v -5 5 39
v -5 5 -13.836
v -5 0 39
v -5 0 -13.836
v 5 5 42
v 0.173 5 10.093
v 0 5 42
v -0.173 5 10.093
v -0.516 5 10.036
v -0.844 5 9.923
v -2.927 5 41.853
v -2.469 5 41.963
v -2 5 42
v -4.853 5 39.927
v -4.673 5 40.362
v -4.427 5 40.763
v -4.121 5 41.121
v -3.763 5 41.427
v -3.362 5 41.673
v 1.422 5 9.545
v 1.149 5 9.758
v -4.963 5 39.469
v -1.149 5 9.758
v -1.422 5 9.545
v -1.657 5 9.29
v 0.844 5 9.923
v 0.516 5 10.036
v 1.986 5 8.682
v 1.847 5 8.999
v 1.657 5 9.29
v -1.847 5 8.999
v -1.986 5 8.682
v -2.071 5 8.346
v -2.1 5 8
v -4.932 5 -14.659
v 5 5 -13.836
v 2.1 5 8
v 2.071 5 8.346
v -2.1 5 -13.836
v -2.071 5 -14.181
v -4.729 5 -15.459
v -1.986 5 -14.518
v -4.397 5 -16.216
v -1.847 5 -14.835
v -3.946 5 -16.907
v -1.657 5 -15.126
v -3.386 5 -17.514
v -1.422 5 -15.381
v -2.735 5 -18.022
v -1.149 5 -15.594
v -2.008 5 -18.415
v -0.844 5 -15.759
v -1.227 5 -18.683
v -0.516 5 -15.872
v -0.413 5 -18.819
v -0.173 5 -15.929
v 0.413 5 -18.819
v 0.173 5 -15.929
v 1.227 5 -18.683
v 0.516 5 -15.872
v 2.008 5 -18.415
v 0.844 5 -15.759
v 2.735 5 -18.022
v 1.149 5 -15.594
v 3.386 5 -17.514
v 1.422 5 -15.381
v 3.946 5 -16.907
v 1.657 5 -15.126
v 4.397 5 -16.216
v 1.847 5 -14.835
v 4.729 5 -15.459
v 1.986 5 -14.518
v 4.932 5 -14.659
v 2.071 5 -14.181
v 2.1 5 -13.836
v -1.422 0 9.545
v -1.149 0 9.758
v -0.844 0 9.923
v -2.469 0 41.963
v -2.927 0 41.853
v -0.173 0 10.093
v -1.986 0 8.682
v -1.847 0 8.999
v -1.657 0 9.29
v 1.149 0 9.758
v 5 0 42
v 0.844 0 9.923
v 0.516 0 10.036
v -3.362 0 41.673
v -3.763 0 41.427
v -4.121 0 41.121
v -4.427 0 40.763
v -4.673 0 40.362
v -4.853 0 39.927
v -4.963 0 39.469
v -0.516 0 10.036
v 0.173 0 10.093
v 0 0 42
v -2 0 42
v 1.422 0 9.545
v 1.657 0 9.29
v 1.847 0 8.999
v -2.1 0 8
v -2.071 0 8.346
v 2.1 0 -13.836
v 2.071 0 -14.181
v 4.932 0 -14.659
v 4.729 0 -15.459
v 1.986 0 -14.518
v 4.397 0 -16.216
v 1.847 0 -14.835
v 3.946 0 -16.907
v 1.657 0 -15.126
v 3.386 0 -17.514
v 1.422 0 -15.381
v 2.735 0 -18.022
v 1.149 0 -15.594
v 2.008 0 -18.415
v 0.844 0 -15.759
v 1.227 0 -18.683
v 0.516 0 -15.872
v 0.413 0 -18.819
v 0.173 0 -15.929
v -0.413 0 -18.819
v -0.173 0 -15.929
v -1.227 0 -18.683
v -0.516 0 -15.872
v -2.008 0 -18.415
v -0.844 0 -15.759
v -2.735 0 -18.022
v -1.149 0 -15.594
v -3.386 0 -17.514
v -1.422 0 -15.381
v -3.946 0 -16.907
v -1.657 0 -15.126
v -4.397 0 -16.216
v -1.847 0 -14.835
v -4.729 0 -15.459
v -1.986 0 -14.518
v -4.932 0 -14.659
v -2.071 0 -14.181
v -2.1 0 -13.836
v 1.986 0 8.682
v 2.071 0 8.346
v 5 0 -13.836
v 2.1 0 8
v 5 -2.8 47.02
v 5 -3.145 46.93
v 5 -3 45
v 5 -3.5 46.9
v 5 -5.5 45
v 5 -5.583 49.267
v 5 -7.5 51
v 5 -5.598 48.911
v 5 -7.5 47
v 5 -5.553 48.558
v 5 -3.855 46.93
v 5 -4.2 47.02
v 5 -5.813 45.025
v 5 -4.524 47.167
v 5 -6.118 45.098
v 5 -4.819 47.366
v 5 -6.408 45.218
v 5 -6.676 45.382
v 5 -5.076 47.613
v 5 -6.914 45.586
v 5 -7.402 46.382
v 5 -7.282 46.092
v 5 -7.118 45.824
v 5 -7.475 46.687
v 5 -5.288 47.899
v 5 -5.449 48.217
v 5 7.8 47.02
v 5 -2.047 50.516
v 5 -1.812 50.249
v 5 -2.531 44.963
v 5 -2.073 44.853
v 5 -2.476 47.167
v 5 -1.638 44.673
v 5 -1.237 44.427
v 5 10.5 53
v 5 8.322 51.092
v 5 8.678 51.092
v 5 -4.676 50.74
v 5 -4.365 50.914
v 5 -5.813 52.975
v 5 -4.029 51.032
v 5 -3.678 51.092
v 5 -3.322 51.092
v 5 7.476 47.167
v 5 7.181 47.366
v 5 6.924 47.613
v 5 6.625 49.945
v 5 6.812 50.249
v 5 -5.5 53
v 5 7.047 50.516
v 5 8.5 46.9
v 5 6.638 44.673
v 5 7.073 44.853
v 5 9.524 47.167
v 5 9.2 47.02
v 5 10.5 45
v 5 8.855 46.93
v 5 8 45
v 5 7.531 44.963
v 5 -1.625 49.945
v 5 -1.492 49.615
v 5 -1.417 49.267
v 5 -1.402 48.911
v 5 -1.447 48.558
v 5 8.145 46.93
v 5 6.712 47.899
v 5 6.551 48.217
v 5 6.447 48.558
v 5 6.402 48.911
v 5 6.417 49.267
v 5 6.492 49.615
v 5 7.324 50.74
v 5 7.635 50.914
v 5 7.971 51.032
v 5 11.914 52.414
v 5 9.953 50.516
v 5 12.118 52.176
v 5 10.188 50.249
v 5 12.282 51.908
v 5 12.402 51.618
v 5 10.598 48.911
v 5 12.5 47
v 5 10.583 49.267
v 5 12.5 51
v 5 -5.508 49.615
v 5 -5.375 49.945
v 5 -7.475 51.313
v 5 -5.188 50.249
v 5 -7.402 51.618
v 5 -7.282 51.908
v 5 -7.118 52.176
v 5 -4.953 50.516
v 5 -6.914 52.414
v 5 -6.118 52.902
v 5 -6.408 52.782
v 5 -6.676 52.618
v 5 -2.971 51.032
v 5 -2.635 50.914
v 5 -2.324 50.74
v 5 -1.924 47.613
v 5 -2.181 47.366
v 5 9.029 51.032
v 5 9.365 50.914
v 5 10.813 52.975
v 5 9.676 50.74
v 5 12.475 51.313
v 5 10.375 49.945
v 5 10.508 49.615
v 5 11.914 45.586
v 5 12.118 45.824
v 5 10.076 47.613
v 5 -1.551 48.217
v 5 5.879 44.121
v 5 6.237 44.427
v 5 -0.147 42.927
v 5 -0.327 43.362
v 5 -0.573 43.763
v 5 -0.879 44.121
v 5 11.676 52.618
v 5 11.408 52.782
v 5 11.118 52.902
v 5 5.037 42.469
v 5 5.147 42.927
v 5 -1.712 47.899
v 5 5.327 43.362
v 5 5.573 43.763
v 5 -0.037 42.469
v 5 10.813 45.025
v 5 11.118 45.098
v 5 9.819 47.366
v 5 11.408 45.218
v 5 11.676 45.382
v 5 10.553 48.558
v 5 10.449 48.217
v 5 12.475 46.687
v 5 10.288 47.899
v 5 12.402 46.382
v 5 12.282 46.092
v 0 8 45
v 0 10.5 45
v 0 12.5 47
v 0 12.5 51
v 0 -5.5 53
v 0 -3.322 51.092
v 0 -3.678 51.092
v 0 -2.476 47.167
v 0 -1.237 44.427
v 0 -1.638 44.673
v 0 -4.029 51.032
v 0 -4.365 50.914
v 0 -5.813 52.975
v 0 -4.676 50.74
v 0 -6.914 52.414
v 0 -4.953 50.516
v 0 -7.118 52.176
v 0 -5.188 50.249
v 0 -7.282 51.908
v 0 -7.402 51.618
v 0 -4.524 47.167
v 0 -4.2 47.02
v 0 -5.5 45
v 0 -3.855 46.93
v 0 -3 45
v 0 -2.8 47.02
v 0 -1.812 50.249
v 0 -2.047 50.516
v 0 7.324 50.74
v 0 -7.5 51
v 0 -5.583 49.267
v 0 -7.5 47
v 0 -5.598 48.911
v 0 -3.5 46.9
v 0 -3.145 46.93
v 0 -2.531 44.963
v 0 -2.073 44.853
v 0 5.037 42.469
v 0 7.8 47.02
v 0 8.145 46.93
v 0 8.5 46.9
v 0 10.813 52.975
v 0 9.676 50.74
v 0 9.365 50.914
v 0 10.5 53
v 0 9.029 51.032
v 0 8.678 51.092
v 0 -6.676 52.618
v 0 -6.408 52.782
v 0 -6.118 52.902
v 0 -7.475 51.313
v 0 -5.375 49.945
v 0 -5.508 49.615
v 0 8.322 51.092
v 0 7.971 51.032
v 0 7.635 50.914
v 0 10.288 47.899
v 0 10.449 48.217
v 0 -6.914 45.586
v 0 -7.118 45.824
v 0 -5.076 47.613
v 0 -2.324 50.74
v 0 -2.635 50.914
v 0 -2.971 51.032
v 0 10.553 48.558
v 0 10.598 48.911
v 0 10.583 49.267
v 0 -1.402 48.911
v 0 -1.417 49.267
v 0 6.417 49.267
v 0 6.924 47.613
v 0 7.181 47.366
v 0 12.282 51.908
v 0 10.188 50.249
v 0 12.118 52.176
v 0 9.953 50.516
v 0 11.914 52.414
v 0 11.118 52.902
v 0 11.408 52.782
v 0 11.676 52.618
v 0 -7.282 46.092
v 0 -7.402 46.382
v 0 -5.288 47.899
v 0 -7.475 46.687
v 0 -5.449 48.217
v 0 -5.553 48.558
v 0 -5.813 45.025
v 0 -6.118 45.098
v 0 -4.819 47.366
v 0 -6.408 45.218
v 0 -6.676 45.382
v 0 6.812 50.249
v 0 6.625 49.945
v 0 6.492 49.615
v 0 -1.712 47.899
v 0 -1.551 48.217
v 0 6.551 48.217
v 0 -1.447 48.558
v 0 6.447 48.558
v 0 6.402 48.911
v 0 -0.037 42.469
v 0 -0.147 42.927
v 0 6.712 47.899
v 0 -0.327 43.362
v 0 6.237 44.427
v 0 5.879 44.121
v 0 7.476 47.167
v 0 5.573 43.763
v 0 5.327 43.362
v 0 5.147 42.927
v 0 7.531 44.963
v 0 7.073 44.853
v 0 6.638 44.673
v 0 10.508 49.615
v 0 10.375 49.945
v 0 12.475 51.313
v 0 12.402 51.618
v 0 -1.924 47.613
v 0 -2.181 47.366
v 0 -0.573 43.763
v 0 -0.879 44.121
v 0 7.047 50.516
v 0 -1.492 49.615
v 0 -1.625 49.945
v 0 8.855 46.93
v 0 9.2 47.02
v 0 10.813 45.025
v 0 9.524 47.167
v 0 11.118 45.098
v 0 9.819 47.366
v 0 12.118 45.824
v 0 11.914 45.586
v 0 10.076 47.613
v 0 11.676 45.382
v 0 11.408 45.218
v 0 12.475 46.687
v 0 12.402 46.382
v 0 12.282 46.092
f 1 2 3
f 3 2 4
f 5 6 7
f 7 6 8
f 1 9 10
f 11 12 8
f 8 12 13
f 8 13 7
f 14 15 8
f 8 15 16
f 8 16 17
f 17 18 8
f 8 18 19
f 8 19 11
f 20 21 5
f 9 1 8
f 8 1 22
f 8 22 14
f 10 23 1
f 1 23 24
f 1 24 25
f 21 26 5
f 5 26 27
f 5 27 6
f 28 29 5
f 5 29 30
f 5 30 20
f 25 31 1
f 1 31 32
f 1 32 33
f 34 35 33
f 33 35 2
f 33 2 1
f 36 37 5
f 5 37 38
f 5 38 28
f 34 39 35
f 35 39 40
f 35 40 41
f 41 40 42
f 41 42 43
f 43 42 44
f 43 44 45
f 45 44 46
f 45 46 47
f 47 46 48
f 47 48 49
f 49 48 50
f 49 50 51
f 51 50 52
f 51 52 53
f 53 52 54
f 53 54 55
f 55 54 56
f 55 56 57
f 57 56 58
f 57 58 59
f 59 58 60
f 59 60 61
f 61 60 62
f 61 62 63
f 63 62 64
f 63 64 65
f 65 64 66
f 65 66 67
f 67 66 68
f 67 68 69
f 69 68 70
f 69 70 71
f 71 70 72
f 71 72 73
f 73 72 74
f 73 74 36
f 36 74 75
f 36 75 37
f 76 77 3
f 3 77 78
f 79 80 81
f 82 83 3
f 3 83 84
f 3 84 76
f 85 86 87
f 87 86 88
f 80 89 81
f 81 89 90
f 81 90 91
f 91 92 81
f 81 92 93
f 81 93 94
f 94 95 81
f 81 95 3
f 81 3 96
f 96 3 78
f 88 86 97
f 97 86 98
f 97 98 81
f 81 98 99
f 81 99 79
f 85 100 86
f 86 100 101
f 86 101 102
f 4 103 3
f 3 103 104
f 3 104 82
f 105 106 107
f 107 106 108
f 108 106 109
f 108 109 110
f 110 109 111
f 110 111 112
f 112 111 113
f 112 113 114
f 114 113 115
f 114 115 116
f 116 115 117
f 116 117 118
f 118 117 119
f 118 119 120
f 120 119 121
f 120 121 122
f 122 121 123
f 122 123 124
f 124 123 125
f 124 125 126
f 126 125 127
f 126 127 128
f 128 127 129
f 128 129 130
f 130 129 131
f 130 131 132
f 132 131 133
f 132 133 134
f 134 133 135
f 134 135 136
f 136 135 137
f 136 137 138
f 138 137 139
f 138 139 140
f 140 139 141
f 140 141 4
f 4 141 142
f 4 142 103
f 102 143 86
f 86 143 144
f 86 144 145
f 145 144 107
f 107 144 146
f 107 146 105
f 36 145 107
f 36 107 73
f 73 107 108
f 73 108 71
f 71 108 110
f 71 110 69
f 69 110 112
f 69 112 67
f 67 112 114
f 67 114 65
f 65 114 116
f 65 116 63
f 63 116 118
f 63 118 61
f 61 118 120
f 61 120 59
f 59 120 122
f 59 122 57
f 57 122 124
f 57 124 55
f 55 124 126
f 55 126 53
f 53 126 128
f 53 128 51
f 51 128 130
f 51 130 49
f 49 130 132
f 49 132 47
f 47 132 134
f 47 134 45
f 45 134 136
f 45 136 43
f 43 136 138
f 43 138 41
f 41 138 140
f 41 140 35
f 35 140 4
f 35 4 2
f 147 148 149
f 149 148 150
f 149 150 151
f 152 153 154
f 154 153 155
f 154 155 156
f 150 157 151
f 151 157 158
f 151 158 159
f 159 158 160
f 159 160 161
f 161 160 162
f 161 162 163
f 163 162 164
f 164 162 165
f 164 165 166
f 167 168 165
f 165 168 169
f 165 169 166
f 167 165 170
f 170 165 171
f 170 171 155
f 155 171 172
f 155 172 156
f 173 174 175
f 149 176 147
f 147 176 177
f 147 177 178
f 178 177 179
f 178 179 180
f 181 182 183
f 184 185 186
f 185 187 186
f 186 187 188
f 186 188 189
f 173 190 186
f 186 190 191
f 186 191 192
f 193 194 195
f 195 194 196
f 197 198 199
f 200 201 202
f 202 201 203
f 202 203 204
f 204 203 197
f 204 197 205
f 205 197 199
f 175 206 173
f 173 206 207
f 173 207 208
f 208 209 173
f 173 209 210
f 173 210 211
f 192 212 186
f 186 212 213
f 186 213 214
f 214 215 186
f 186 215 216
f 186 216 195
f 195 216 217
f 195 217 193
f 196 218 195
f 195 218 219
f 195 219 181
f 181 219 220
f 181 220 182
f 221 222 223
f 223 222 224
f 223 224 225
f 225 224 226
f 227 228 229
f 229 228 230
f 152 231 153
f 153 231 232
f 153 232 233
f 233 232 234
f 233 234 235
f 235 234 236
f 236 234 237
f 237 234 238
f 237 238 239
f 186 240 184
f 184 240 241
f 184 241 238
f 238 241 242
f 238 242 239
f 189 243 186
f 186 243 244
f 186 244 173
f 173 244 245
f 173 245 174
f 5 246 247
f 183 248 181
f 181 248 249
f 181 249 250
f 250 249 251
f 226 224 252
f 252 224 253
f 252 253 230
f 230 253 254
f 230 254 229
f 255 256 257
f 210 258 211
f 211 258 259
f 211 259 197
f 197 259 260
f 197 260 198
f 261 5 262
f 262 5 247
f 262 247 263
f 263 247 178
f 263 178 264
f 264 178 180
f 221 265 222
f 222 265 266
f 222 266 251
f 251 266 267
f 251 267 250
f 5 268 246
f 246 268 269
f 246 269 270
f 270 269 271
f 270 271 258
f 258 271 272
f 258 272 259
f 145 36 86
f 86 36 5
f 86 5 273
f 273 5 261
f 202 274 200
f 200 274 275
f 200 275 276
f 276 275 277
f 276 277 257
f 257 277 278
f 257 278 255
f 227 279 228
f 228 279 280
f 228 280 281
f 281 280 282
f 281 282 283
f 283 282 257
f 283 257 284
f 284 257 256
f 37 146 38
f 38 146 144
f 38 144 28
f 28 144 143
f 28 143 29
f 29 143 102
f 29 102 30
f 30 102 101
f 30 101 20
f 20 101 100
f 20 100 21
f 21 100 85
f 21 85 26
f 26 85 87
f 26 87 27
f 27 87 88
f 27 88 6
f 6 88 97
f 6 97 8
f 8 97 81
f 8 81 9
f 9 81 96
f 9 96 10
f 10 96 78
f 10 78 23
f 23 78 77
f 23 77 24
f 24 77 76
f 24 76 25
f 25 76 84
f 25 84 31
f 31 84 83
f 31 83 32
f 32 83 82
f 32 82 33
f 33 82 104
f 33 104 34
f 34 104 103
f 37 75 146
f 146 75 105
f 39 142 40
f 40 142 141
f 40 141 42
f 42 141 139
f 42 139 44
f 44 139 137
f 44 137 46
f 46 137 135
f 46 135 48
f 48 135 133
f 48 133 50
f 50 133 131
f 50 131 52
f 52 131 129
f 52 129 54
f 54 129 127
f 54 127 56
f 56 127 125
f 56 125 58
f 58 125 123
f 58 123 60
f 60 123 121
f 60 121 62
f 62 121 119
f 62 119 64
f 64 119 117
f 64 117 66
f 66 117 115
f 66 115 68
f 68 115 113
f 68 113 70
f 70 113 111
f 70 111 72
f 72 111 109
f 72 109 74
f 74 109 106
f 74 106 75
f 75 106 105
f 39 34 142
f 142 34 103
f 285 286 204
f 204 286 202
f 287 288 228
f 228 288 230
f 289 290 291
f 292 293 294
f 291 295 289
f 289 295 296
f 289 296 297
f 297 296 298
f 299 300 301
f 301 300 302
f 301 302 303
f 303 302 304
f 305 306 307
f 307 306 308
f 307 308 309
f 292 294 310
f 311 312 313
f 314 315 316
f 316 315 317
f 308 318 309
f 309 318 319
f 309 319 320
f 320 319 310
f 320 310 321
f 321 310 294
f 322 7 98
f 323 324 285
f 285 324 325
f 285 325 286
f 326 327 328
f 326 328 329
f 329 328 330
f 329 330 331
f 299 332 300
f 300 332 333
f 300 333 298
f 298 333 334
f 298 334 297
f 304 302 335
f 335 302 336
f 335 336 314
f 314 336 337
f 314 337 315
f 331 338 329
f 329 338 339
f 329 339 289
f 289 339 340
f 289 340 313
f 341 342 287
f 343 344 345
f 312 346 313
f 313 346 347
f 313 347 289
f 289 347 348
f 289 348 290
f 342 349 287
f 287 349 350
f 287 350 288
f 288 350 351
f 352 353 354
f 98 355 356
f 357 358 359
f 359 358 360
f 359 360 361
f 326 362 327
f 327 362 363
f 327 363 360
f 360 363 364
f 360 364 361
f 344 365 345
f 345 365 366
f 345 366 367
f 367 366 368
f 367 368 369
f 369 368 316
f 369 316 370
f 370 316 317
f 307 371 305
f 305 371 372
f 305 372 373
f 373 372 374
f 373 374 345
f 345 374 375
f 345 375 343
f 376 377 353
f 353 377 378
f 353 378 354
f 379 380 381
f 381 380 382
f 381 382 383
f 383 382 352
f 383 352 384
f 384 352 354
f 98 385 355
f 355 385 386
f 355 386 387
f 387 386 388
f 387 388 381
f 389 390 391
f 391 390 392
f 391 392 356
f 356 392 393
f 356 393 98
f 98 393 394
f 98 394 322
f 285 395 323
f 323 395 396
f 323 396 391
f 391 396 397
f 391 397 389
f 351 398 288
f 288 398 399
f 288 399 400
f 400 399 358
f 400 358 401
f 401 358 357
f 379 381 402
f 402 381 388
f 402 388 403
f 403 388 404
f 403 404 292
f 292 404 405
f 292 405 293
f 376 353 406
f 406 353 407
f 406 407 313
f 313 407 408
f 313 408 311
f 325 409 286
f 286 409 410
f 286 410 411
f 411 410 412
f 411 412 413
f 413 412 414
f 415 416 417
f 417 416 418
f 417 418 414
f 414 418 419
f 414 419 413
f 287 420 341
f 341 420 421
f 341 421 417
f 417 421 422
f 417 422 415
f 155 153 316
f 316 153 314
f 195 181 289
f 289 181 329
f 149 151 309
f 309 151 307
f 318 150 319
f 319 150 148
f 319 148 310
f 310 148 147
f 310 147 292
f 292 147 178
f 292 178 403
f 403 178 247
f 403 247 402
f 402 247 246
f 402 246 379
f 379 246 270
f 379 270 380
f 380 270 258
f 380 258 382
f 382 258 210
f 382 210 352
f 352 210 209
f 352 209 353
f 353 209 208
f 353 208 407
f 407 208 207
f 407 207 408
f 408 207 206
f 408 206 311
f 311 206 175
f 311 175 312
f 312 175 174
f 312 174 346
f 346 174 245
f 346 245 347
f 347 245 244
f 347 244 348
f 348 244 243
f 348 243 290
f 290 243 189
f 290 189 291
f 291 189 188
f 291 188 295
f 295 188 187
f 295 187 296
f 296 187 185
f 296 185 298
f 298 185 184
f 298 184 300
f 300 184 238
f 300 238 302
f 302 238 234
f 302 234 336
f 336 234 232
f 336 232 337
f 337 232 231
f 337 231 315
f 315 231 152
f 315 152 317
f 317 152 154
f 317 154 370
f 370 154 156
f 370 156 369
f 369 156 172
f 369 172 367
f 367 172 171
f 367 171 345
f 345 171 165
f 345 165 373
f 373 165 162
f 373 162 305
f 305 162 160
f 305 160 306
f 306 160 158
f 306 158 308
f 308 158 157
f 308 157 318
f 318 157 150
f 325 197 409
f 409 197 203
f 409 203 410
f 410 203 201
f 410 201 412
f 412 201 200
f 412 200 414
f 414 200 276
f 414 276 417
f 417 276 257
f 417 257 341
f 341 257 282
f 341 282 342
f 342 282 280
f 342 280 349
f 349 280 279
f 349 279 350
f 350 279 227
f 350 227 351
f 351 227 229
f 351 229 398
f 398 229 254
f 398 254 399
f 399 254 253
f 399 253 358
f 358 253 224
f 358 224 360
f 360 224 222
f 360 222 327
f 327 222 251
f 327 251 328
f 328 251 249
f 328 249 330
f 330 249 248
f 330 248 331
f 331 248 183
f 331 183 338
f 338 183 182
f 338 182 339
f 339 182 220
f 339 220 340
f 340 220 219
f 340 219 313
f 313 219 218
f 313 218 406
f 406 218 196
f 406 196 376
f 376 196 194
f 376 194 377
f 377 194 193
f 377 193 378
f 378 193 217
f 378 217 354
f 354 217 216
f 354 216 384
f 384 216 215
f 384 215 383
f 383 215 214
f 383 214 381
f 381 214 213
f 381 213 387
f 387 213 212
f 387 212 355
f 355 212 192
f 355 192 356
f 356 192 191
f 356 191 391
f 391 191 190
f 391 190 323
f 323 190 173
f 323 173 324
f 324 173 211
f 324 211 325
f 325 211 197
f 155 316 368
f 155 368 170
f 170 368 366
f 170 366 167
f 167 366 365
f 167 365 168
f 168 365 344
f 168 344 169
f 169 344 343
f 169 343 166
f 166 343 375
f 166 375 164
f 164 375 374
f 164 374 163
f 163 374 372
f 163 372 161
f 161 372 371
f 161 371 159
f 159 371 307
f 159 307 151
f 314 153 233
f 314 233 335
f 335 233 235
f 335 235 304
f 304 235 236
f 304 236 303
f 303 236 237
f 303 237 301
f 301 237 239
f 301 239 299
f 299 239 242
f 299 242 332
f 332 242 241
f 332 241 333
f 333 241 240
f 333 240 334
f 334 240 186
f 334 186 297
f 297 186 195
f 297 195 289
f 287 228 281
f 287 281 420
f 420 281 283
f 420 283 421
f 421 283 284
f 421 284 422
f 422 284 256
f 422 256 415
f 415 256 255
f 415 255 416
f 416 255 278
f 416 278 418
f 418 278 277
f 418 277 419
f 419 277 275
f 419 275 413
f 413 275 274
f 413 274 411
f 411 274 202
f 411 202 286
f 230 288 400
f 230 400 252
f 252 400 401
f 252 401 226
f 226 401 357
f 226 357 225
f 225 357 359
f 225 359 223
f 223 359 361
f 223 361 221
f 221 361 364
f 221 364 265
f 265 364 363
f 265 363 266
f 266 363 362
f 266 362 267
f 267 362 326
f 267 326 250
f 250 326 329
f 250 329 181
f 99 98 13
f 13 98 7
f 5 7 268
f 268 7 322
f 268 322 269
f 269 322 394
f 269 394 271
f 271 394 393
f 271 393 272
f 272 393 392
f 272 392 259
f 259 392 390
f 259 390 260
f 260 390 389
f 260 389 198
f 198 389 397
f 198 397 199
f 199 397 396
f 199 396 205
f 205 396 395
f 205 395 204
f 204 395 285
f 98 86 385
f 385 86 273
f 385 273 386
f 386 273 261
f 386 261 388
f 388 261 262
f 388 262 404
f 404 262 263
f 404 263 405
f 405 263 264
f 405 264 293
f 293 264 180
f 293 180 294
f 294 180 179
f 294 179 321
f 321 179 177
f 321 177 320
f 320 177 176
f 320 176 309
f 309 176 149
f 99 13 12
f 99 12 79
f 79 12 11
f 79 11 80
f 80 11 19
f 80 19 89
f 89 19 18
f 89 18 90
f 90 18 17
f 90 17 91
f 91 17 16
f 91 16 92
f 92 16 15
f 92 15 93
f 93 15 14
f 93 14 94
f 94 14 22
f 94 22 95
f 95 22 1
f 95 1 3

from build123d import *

# Parameters (mm, degrees)
BOSS_EXTRUDE1_DEPTH = 5
SKETCH2_W           = 5
SKETCH2_H           = 20
BOSS_EXTRUDE2_DEPTH = 8
SKETCH3_R           = 2.1
CUT_EXTRUDE1_DEPTH  = 8
FILLET2_R           = 2
SKETCH4_W           = 5
SKETCH4_H           = 5
CUT_EXTRUDE2_DEPTH  = 3
FILLET3_R           = 3


with BuildPart() as part:
    # Sketch1 → Boss-Extrude1 (new body)
    with BuildSketch(Plane(origin=(0, 0, 0), x_dir=(1, 0, 0), z_dir=(0, 1, 0))):
        with BuildLine():
            Line((-5, 0), (-5, 13.835803565))
            ThreePointArc((-5, 13.835803565), (0, 18.835803565), (5, 13.835803565))
            Line((5, 13.835803565), (5, 0))
            Line((5, 0), (5, -45))
            Line((5, -45), (-5, -45))
            Line((-5, -45), (-5, 0))
        make_face()
        with BuildLine():
            Line((-2.1, -8), (-2.1, 13.835803565))
            ThreePointArc((-2.1, 13.835803565), (0, 15.935803565), (2.1, 13.835803565))
            Line((2.1, 13.835803565), (2.1, -8))
            ThreePointArc((2.1, -8), (0, -10.1), (-2.1, -8))
        make_face(mode=Mode.SUBTRACT)
    extrude(amount=BOSS_EXTRUDE1_DEPTH)

    # Sketch2 → Boss-Extrude2 (add)
    with BuildSketch(Plane.XY.offset(45)):
        with Locations((2.5, 2.5)):
            Rectangle(SKETCH2_W, SKETCH2_H)
    extrude(amount=BOSS_EXTRUDE2_DEPTH)

    # Sketch3 → Cut-Extrude1 (cut)
    with BuildSketch(Plane(origin=(5, 0, 0), x_dir=(0, 0, -1), z_dir=(1, 0, 0))):
        with Locations((-49, 8.5)):
            Circle(SKETCH3_R)
        with Locations((-49, -3.5)):
            Circle(SKETCH3_R)
    extrude(amount=-CUT_EXTRUDE1_DEPTH, mode=Mode.SUBTRACT)

    # Fillet2
    fillet2_edges = [part.edges().sort_by_distance(p)[0] for p in [
        (2.5, 12.5, 45),
        (2.5, -7.5, 45),
        (2.5, 12.5, 53),
        (2.5, -7.5, 53),
    ]]
    fillet(fillet2_edges, radius=FILLET2_R)

    # Sketch4 → Cut-Extrude2 (cut)
    with BuildSketch(Plane.XY.offset(45)):
        with Locations((-2.5, 2.5)):
            Rectangle(SKETCH4_W, SKETCH4_H)
    extrude(amount=-CUT_EXTRUDE2_DEPTH, mode=Mode.SUBTRACT)

    # Fillet3
    fillet3_edges = [part.edges().sort_by_distance(p)[0] for p in [
        (2.5, 0, 45),
        (2.5, 5, 45),
        (-5, 2.5, 42),
    ]]
    fillet(fillet3_edges, radius=FILLET3_R)


solid = part.part
